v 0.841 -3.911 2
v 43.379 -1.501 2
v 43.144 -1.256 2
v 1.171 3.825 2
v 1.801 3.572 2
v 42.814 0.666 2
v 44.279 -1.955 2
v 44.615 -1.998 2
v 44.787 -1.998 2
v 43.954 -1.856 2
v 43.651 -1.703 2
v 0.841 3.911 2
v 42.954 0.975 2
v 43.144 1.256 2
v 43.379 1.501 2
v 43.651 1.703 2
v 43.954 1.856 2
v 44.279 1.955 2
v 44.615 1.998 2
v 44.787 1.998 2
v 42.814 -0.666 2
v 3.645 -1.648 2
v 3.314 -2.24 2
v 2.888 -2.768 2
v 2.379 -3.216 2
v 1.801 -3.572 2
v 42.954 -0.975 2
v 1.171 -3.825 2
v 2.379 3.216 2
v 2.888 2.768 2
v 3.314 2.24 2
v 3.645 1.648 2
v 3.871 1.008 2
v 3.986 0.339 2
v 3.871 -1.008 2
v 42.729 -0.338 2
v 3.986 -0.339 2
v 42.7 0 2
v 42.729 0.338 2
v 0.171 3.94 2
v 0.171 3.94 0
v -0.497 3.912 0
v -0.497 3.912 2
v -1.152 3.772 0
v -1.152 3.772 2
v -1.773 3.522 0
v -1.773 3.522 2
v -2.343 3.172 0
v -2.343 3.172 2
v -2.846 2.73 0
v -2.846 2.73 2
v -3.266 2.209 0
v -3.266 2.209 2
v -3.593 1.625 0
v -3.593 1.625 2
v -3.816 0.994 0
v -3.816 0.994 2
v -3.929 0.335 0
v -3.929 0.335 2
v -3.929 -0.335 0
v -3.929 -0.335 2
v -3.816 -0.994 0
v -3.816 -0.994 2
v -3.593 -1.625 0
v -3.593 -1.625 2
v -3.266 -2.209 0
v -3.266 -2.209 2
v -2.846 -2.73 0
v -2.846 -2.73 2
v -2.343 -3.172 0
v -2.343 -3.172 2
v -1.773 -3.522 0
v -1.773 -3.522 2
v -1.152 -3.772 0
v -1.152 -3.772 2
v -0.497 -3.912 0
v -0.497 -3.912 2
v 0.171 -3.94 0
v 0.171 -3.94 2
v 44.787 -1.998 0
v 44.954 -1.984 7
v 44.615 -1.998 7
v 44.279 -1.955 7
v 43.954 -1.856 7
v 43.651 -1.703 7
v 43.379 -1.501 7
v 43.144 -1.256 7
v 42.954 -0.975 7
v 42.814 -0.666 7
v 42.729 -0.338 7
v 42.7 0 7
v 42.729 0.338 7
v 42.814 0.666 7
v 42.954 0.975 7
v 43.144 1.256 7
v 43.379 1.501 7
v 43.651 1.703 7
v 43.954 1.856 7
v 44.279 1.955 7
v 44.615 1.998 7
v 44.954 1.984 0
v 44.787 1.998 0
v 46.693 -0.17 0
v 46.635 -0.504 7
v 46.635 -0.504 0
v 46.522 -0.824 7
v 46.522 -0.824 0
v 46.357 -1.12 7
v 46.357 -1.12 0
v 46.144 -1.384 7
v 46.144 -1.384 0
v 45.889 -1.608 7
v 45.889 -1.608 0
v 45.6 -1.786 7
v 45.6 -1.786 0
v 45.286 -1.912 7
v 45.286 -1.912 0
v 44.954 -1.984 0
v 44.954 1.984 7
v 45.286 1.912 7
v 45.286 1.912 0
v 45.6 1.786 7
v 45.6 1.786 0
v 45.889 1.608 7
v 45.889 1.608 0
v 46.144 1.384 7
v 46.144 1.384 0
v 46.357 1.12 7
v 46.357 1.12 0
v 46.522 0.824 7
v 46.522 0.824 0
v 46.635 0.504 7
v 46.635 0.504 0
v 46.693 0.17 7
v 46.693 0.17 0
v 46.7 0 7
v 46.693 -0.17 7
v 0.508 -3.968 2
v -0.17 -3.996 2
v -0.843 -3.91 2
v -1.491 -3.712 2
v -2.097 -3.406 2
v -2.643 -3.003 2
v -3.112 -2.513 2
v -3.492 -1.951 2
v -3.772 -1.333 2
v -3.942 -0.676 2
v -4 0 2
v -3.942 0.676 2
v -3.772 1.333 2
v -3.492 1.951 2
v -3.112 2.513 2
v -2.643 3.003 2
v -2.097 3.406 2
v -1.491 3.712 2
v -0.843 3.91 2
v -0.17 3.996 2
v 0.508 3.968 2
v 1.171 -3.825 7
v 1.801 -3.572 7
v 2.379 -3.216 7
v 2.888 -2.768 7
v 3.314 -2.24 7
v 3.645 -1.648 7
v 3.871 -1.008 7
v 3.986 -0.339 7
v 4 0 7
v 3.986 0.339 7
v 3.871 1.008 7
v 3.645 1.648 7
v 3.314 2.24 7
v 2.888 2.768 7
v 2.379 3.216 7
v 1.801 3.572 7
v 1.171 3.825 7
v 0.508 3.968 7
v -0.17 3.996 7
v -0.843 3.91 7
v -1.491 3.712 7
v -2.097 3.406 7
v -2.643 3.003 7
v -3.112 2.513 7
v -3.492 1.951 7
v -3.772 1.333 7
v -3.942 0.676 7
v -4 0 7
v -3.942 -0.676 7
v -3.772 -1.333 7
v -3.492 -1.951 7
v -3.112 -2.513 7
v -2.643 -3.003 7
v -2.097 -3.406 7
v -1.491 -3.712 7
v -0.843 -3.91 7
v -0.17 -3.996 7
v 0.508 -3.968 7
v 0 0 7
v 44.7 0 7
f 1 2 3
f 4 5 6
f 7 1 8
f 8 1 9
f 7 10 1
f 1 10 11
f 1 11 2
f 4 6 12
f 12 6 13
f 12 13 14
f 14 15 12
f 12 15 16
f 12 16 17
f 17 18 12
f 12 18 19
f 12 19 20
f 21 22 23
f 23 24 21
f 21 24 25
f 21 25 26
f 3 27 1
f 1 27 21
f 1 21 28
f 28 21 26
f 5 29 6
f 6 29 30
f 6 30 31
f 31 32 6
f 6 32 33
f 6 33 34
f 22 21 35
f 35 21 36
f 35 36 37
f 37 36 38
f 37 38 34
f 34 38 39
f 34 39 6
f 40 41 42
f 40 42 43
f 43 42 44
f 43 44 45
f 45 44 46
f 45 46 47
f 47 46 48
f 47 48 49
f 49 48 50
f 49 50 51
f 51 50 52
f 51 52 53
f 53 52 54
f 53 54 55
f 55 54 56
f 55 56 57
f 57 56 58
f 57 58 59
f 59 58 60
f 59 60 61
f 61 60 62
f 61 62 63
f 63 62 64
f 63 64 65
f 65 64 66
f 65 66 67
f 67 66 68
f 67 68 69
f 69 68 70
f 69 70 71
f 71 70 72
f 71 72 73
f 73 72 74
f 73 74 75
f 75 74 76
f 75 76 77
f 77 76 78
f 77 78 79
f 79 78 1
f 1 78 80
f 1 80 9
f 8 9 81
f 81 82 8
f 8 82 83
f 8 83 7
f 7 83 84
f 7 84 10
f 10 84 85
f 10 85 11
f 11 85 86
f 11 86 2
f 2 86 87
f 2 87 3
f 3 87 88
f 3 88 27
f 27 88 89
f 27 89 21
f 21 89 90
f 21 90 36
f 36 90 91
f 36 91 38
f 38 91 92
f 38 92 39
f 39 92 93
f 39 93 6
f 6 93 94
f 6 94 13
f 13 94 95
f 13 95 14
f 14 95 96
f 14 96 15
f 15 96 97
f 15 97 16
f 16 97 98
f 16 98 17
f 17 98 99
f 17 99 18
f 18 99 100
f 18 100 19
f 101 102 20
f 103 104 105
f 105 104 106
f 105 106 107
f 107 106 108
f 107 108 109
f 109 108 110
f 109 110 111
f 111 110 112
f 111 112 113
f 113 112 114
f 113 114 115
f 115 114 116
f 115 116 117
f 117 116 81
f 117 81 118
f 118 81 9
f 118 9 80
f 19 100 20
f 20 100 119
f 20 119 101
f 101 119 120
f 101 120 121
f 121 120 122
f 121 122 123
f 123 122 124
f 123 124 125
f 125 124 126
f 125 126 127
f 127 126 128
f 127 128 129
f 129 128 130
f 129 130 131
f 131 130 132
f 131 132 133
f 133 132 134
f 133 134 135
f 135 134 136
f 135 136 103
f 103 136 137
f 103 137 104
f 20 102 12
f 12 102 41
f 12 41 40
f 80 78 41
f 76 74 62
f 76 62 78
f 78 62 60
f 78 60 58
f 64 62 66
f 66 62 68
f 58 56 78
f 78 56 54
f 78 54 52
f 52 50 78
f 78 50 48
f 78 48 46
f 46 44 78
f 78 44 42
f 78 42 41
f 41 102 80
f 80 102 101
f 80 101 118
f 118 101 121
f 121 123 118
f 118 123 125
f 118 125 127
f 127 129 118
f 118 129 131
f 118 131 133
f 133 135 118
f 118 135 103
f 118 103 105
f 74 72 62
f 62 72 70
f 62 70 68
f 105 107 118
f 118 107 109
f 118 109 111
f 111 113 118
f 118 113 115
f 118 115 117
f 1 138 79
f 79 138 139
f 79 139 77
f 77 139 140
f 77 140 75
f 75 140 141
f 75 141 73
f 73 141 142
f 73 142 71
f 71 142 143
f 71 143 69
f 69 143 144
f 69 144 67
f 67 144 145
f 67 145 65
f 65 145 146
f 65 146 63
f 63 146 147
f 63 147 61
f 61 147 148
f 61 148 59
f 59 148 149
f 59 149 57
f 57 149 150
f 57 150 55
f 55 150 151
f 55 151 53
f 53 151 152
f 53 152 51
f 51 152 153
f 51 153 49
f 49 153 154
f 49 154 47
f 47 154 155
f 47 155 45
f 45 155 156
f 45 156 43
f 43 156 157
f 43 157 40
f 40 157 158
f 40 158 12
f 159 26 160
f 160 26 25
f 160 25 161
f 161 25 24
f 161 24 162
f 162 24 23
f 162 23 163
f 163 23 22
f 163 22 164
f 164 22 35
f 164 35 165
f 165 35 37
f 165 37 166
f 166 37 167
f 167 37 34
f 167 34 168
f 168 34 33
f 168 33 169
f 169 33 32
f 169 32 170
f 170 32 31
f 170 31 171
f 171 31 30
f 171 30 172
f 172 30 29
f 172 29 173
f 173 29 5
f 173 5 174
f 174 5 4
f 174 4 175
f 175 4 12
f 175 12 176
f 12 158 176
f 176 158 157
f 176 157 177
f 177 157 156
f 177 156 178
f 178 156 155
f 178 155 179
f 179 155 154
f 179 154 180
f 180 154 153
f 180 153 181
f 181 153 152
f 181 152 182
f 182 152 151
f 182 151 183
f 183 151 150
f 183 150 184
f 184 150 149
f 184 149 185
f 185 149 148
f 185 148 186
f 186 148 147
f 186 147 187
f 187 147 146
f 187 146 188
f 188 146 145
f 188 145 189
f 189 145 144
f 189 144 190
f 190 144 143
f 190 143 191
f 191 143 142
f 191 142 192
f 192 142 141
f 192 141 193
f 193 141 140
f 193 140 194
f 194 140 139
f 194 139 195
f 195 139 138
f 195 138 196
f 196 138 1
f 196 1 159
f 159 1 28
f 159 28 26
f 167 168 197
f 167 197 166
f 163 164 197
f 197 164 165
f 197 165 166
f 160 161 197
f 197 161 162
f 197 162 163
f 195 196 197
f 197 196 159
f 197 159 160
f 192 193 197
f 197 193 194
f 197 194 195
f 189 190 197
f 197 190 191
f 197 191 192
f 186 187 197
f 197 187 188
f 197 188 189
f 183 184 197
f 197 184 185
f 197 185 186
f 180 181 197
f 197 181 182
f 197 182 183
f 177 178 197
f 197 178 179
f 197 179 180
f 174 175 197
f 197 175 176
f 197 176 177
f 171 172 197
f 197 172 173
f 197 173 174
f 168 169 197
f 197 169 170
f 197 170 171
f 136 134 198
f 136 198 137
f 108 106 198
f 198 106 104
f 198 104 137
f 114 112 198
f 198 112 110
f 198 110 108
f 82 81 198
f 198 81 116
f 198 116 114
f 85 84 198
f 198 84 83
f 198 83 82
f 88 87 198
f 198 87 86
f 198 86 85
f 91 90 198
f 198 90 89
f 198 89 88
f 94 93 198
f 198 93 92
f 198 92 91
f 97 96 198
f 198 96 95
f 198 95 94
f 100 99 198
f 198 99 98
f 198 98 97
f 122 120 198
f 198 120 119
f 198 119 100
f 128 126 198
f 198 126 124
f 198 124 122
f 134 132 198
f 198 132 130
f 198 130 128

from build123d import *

# Parameters (mm, degrees)
BOSS_EXTRUDE1_DEPTH = 2
SKETCH3_R           = 4
SKETCH3_R_2         = 2
BOSS_EXTRUDE2_DEPTH = 5


with BuildPart() as part:
    # Sketch2 → Boss-Extrude1 (new body)
    with BuildSketch(Plane.XY):
        with BuildLine():
            Line((0.171455577, 3.939749203), (44.786956522, 1.998108747))
            ThreePointArc((44.786956522, 1.998108747), (46.7, 0), (44.786956522, -1.998108747))
            Line((44.786956522, -1.998108747), (0.171455577, -3.939749203))
            ThreePointArc((0.171455577, -3.939749203), (-3.943478261, 0), (0.171455577, 3.939749203))
        make_face()
    extrude(amount=BOSS_EXTRUDE1_DEPTH)

    # Sketch3 → Boss-Extrude2 (add)
    with BuildSketch(Plane.XY.offset(2)):
        with Locations(Location((0, 0, 0), (0, 0, 282.135260603))):
            Circle(SKETCH3_R)
        with Locations(Location((44.7, 0, 0), (0, 0, 272.491906369))):
            Circle(SKETCH3_R_2)
    extrude(amount=BOSS_EXTRUDE2_DEPTH)


solid = part.part
